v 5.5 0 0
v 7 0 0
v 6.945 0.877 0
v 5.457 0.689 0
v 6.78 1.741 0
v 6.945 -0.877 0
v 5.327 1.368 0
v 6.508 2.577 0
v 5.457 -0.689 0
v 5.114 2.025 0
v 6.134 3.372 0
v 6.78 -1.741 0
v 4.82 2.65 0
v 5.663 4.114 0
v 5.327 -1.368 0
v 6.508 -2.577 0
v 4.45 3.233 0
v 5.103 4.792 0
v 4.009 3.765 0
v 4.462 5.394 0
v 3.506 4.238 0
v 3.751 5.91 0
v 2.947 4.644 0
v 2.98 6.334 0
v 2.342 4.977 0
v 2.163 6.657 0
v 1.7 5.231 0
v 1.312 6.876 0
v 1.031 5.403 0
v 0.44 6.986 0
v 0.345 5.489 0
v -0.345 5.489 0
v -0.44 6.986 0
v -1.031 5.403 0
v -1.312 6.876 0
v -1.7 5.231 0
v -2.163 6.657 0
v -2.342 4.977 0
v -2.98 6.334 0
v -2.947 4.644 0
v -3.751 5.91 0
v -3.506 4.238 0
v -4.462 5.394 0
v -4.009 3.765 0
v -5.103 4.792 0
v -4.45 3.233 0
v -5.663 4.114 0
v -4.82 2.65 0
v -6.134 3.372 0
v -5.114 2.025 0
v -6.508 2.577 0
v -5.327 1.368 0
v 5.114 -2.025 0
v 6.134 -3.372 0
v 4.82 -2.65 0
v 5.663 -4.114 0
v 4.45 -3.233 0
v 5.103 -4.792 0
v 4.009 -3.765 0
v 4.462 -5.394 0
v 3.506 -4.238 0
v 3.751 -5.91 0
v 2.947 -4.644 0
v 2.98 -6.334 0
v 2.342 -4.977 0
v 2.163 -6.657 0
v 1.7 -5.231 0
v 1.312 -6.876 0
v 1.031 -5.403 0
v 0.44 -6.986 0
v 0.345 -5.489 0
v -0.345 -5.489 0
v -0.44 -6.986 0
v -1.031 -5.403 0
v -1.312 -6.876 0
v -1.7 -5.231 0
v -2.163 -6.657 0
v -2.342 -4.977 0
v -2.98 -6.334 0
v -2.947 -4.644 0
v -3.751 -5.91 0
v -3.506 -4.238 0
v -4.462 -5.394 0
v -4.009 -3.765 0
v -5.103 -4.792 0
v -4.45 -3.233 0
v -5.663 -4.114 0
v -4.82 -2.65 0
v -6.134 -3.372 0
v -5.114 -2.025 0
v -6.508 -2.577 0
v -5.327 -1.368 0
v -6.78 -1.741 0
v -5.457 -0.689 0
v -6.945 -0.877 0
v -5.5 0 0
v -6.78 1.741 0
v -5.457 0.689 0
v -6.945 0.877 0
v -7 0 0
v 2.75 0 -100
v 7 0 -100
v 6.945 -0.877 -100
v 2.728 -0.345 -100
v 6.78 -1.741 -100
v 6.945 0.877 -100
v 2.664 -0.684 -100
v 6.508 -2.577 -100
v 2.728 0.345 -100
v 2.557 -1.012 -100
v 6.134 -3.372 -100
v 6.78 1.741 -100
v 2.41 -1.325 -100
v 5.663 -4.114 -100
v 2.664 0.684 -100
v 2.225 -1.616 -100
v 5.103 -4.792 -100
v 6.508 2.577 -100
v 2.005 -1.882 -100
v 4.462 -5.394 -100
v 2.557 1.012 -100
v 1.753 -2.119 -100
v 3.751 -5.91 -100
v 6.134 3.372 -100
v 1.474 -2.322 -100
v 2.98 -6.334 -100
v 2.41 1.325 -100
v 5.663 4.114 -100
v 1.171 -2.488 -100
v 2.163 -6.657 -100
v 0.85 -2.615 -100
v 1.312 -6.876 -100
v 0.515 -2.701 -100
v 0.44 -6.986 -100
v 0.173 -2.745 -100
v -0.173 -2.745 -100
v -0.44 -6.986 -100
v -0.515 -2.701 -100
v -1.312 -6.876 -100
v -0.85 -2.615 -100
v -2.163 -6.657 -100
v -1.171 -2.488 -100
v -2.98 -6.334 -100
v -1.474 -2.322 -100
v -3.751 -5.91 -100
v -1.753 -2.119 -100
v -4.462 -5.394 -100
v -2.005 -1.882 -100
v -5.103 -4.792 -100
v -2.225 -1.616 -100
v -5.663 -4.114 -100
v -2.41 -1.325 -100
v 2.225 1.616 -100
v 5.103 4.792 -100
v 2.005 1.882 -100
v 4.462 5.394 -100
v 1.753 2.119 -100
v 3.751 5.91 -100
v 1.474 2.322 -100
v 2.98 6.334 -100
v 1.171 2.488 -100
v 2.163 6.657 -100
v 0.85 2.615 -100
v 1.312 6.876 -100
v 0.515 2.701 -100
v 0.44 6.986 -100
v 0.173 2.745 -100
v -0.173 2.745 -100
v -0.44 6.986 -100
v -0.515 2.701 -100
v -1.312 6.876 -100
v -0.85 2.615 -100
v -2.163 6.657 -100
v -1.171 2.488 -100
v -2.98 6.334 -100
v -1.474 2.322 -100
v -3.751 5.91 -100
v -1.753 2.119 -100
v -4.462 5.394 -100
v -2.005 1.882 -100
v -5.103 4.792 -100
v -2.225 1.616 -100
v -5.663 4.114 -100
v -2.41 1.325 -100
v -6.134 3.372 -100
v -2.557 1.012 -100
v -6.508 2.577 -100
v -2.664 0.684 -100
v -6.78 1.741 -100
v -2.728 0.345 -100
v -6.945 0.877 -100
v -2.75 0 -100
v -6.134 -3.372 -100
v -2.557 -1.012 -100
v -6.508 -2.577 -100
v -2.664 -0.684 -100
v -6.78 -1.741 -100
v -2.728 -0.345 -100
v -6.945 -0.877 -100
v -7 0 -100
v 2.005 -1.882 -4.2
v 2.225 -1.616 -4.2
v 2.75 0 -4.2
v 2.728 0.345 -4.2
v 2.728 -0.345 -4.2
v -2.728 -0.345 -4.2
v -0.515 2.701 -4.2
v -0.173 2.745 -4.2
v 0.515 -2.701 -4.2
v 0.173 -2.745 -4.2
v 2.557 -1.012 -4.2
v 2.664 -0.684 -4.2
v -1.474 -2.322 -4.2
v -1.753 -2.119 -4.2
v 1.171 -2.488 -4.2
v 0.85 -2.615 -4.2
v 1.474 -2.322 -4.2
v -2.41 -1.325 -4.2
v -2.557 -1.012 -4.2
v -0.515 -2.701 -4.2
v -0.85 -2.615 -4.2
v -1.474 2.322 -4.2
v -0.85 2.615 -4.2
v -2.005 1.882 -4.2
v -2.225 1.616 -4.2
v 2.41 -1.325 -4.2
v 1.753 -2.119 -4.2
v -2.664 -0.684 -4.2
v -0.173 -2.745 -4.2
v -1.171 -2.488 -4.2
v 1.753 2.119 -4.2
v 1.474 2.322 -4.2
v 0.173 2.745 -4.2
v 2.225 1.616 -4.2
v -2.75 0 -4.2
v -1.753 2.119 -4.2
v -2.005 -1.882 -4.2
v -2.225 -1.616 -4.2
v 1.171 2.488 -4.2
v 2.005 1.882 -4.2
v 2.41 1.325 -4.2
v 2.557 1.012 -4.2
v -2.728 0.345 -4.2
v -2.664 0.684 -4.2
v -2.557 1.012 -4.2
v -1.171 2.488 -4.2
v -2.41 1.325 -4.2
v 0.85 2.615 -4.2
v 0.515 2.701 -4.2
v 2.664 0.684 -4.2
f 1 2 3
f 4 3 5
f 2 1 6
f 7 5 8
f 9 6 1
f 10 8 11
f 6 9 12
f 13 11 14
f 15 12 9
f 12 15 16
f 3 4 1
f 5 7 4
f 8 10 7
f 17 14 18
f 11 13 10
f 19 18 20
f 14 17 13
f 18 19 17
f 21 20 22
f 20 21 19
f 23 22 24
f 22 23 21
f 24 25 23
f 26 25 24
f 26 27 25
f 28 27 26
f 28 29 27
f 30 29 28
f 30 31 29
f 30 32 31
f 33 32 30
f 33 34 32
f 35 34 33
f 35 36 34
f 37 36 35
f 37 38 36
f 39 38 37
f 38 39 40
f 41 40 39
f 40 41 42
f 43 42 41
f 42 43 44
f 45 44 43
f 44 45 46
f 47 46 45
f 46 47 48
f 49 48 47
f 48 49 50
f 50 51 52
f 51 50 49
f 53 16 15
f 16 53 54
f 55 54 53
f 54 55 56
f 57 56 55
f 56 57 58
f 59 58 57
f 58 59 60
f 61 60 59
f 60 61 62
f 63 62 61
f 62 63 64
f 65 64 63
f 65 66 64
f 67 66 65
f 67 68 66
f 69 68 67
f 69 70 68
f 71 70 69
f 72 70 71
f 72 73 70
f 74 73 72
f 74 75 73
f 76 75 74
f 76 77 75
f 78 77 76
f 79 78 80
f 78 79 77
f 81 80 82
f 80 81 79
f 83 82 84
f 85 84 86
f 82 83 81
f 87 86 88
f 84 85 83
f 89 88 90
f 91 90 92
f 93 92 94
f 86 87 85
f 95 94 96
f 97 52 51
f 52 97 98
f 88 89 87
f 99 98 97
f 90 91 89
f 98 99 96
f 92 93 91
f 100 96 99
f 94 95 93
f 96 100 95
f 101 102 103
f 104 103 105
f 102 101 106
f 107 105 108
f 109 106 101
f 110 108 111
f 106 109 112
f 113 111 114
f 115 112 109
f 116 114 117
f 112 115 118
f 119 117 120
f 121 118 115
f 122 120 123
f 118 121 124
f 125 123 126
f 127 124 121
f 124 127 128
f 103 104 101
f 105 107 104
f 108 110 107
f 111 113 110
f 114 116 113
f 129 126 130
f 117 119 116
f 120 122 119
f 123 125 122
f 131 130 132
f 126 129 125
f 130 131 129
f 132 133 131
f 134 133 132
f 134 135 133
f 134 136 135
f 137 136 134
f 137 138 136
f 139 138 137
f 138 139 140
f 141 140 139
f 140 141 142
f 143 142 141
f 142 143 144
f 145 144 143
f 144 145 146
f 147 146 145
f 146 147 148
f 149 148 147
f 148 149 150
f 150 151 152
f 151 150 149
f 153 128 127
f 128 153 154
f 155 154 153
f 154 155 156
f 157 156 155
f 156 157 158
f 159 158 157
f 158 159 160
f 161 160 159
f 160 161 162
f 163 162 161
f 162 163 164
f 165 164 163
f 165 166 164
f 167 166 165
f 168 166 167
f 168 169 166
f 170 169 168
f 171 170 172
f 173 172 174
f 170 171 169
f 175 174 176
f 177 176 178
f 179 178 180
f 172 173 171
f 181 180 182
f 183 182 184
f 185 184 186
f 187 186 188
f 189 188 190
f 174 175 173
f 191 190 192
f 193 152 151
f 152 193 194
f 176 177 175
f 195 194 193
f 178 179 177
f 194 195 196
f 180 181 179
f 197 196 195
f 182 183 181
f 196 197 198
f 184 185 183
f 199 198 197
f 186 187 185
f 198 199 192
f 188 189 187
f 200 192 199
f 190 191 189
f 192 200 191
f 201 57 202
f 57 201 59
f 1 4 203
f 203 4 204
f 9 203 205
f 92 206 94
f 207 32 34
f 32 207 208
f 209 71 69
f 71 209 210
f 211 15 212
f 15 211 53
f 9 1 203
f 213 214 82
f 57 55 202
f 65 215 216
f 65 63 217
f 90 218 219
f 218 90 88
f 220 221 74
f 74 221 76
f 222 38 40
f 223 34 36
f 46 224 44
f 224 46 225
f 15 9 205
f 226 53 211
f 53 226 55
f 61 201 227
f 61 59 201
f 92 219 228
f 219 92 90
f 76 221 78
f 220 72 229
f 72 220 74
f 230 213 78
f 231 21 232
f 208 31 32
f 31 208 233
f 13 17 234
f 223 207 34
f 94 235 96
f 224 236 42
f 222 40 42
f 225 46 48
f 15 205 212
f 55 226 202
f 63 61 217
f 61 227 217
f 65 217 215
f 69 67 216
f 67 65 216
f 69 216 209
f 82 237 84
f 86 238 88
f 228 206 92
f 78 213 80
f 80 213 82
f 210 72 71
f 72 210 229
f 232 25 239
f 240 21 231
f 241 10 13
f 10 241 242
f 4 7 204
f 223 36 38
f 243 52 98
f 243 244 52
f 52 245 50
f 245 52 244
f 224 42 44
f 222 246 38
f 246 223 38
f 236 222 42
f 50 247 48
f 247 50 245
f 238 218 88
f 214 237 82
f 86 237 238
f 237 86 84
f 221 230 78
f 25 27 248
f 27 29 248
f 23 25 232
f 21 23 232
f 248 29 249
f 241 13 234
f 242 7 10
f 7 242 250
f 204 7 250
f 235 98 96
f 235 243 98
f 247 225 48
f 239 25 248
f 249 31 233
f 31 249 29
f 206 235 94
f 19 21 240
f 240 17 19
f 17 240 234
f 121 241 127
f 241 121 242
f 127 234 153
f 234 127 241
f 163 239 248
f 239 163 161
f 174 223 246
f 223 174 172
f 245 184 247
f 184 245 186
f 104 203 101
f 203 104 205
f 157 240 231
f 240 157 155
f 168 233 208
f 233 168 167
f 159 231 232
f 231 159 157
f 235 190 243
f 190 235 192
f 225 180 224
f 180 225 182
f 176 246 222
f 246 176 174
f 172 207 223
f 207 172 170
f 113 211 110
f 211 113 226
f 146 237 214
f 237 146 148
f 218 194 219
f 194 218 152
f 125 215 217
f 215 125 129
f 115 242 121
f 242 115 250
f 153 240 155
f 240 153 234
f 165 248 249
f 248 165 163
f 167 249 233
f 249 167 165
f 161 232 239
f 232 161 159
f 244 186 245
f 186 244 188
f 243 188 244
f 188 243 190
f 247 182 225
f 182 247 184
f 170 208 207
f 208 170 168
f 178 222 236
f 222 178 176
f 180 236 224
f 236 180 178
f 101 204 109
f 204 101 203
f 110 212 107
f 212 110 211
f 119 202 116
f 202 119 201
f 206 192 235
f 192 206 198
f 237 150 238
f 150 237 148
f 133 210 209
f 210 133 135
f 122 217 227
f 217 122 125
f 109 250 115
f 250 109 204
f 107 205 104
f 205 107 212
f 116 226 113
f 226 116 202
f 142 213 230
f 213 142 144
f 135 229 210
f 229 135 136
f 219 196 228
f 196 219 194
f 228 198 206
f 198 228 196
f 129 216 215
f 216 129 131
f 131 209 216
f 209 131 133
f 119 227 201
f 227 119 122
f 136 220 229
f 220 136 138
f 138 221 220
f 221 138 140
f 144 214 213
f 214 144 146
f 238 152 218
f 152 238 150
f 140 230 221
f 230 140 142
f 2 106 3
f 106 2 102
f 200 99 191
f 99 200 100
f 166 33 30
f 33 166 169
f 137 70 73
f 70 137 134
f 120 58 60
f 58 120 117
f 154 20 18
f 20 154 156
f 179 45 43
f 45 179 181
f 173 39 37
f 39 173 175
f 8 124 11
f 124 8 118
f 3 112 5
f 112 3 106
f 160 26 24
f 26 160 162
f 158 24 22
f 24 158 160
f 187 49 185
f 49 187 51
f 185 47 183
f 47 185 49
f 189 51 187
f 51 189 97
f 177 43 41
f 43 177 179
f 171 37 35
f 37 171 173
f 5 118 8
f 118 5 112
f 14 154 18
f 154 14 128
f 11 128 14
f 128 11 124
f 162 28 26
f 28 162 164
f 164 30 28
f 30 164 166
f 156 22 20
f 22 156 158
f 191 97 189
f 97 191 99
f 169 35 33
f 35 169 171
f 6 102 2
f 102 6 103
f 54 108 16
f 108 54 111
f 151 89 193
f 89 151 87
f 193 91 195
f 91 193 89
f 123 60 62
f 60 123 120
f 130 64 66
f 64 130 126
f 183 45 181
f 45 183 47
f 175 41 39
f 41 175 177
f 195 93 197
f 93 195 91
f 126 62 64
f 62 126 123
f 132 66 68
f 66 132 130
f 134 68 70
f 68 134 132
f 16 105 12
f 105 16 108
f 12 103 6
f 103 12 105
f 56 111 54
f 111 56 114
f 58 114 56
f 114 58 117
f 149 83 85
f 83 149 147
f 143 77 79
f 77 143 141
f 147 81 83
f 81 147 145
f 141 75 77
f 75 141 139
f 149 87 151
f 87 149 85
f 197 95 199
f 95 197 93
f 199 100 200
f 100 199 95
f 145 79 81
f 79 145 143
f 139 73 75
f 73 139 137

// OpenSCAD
$fn = 50;


difference() {
	union() {
		translate(v = [0, 0, -100.0000000000]) {
			cylinder(h = 100, r = 7.0000000000);
		}
	}
	union() {
		translate(v = [0, 0, 0]) {
			rotate(a = [0, 0, 0]) {
				difference() {
					union() {
						#translate(v = [0, 0, -100.0000000000]) {
							cylinder(h = 100, r = 2.2500000000);
						}
						#translate(v = [0, 0, -4.2000000000]) {
							cylinder(h = 4.2000000000, r = 7.0000000000, r1 = 2.7500000000, r2 = 5.5000000000);
						}
						#translate(v = [0, 0, -100.0000000000]) {
							cylinder(h = 100, r = 2.7500000000);
						}
						#translate(v = [0, 0, -100.0000000000]) {
							cylinder(h = 100, r = 2.2500000000);
						}
					}
					union();
				}
			}
		}
	}
}
